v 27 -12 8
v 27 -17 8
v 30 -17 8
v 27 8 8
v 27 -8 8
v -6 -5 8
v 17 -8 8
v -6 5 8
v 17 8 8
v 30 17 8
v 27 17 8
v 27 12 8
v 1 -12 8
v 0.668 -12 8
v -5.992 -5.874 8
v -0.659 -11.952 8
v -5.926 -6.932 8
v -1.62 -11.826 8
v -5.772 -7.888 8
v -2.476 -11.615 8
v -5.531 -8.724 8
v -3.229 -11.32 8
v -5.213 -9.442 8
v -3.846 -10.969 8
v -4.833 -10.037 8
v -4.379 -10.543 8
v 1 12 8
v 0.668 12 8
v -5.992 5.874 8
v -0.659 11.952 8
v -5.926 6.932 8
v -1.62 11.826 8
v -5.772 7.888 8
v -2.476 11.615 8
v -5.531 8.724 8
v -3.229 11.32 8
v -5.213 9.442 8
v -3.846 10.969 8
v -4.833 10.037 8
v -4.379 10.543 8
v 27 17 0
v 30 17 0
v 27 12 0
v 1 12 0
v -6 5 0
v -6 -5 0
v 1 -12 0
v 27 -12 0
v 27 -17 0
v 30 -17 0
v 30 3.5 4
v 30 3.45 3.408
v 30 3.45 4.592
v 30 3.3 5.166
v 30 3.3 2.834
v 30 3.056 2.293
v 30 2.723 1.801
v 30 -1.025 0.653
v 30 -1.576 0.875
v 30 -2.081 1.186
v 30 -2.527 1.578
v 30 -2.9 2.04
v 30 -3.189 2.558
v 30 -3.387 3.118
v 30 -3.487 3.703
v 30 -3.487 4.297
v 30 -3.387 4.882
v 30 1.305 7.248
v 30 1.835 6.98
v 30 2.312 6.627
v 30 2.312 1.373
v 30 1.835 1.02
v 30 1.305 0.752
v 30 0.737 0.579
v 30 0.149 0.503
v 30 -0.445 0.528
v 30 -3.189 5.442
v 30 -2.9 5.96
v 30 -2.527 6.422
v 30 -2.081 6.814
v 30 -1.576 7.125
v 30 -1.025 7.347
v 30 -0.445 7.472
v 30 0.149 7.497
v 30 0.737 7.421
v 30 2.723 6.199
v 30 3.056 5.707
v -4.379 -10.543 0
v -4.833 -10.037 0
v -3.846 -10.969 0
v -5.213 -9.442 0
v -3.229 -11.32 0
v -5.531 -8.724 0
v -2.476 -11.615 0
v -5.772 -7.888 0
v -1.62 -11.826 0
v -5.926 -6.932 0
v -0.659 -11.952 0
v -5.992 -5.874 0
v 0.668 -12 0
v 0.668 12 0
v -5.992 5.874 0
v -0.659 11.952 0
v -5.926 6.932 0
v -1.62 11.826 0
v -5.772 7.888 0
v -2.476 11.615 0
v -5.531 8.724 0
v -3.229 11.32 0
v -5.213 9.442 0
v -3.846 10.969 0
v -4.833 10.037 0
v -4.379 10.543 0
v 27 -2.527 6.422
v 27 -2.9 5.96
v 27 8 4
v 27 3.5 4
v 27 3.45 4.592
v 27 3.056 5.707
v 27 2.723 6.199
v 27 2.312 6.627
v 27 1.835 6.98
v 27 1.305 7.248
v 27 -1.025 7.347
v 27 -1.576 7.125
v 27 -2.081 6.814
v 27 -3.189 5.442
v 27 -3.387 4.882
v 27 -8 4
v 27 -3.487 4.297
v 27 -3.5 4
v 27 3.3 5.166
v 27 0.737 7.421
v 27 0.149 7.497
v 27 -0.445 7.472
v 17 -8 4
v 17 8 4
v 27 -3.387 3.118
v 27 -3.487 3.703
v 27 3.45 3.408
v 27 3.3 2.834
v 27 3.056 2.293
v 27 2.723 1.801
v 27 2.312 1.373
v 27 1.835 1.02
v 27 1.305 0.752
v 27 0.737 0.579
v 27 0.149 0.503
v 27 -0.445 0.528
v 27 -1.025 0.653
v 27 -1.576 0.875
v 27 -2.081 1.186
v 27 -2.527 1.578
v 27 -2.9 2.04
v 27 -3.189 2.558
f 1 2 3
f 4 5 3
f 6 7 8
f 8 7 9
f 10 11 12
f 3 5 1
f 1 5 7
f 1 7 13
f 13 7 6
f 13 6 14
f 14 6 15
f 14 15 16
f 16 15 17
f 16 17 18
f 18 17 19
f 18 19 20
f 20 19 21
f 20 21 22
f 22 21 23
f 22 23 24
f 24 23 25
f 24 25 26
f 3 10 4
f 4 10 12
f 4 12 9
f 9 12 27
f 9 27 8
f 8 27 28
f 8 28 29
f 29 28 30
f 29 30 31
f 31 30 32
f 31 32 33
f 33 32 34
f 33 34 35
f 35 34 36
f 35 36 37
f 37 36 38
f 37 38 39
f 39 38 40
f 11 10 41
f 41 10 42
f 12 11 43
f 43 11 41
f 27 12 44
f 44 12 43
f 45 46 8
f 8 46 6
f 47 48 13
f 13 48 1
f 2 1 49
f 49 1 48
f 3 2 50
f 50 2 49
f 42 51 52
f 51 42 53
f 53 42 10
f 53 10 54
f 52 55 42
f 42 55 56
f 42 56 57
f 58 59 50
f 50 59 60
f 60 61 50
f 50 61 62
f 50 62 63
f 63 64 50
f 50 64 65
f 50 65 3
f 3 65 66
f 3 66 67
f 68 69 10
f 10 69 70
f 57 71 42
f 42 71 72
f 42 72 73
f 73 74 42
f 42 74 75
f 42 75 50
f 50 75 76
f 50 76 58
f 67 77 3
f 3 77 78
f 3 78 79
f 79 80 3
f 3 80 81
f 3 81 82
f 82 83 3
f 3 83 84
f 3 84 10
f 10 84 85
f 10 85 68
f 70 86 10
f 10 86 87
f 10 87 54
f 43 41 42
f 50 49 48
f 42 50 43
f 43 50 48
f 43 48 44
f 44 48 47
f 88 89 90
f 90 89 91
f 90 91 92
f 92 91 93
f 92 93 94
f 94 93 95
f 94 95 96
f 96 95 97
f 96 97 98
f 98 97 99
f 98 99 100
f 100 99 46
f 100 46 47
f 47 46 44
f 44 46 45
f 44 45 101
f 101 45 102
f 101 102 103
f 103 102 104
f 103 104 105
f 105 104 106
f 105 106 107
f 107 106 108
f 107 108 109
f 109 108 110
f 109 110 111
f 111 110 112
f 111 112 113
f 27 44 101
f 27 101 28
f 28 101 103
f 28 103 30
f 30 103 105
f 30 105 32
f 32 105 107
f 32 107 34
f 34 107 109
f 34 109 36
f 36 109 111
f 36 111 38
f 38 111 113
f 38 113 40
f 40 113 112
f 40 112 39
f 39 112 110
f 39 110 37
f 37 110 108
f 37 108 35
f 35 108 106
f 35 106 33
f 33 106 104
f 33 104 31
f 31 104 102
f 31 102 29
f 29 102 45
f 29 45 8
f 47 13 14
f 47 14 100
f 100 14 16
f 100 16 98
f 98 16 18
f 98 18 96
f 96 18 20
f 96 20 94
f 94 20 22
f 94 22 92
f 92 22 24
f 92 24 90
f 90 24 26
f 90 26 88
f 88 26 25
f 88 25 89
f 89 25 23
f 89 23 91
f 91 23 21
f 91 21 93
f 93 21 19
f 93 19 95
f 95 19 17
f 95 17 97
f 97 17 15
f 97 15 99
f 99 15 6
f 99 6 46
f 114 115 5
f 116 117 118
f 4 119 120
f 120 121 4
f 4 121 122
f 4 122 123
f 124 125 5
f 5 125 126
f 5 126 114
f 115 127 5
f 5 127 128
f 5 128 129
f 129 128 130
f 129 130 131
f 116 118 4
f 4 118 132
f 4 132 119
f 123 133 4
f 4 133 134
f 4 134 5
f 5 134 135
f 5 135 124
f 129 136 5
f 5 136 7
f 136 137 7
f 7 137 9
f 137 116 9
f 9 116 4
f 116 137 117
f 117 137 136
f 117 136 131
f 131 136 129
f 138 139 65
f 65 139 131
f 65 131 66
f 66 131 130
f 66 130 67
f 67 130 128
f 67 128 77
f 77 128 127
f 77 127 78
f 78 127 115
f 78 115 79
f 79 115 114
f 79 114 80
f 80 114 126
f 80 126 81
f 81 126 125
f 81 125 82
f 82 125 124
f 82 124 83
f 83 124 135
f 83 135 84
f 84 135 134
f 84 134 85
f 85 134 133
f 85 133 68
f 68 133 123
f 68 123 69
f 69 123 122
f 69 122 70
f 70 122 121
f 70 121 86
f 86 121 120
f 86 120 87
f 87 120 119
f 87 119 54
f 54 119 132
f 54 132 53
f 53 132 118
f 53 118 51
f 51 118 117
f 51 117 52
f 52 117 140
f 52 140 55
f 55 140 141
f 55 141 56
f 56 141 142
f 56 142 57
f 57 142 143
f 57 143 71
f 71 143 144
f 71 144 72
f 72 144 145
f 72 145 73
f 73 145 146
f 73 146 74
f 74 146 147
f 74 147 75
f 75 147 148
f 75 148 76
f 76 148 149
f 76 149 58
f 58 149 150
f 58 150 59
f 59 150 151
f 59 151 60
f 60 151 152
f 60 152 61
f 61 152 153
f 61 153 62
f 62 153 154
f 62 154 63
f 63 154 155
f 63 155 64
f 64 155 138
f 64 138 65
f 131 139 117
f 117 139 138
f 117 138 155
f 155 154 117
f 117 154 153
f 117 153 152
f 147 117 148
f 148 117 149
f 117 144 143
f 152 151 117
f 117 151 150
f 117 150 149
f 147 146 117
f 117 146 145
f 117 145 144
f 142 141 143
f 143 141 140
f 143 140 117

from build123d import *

# Parameters (mm, degrees)
BOSS_EXTRUDE1_DEPTH = 8
FILLET3_SIZE        = 7
SKETCH2_W           = 10
SKETCH2_H           = 8
CUT_EXTRUDE1_DEPTH  = 4
SKETCH3_R           = 3.5
CUT_EXTRUDE2_DEPTH  = 3


with BuildPart() as part:
    # Sketch1 → Boss-Extrude1 (new body)
    with BuildSketch(Plane.XY):
        Polygon((-6, -12), (-6, 12), (27, 12), (27, 17), (30, 17), (30, -17), (27, -17), (27, -12), align=None)
    extrude(amount=BOSS_EXTRUDE1_DEPTH)

    # Fillet3
    # a fillet whose section is not a circle: 7 mm, written as the material it takes off along each edge
    with BuildSketch(Plane(origin=(-6, 12, -17.5), x_dir=(0, -1, 0), z_dir=(0, 0, 1))) as fillet3_piece_1:
        with BuildLine():
            add(Edge.make_bspline([(FILLET3_SIZE, 0), (FILLET3_SIZE * 0.831801948466, 0), (FILLET3_SIZE * 0.663603896932, 0), (FILLET3_SIZE * 0.292893218813, FILLET3_SIZE * 0.0716919198361), (FILLET3_SIZE * 0.0716919198361, FILLET3_SIZE * 0.292893218813), (0, FILLET3_SIZE * 0.663603896932), (0, FILLET3_SIZE * 0.831801948466), (0, FILLET3_SIZE)], knots=[0, 0, 0, 0, 0, 0, 0.5, 0.5, 1, 1, 1, 1, 1, 1], degree=5))
            Line((0, FILLET3_SIZE), (0, 0))
            Line((0, 0), (FILLET3_SIZE, 0))
        make_face()
    extrude(amount=43, mode=Mode.SUBTRACT)
    with BuildSketch(Plane(origin=(-6, -12, -17.5), x_dir=(0, 1, 0), z_dir=(0, 0, 1))) as fillet3_piece_2:
        with BuildLine():
            add(Edge.make_bspline([(FILLET3_SIZE, 0), (FILLET3_SIZE * 0.831801948466, 0), (FILLET3_SIZE * 0.663603896932, 0), (FILLET3_SIZE * 0.292893218813, -FILLET3_SIZE * 0.0716919198361), (FILLET3_SIZE * 0.0716919198361, -FILLET3_SIZE * 0.292893218813), (0, -FILLET3_SIZE * 0.663603896932), (0, -FILLET3_SIZE * 0.831801948466), (0, -FILLET3_SIZE)], knots=[0, 0, 0, 0, 0, 0, 0.5, 0.5, 1, 1, 1, 1, 1, 1], degree=5))
            Line((0, -FILLET3_SIZE), (0, 0))
            Line((0, 0), (FILLET3_SIZE, 0))
        make_face()
    extrude(amount=43, mode=Mode.SUBTRACT)

    # Sketch2 → Cut-Extrude1 (cut)
    with BuildSketch(Plane.XY.offset(8)):
        with Locations((22, 4)):
            Rectangle(SKETCH2_W, SKETCH2_H)
        with Locations((22, -4)):
            Rectangle(SKETCH2_W, SKETCH2_H)
    extrude(amount=-CUT_EXTRUDE1_DEPTH, mode=Mode.SUBTRACT)

    # Sketch3 → Cut-Extrude2 (cut)
    with BuildSketch(Plane(origin=(30, 0, 0), x_dir=(0, 0, -1), z_dir=(1, 0, 0))):
        with Locations(Location((-4, 0, 0), (0, 0, 90))):
            Circle(SKETCH3_R)
    extrude(amount=-CUT_EXTRUDE2_DEPTH, mode=Mode.SUBTRACT)


solid = part.part
